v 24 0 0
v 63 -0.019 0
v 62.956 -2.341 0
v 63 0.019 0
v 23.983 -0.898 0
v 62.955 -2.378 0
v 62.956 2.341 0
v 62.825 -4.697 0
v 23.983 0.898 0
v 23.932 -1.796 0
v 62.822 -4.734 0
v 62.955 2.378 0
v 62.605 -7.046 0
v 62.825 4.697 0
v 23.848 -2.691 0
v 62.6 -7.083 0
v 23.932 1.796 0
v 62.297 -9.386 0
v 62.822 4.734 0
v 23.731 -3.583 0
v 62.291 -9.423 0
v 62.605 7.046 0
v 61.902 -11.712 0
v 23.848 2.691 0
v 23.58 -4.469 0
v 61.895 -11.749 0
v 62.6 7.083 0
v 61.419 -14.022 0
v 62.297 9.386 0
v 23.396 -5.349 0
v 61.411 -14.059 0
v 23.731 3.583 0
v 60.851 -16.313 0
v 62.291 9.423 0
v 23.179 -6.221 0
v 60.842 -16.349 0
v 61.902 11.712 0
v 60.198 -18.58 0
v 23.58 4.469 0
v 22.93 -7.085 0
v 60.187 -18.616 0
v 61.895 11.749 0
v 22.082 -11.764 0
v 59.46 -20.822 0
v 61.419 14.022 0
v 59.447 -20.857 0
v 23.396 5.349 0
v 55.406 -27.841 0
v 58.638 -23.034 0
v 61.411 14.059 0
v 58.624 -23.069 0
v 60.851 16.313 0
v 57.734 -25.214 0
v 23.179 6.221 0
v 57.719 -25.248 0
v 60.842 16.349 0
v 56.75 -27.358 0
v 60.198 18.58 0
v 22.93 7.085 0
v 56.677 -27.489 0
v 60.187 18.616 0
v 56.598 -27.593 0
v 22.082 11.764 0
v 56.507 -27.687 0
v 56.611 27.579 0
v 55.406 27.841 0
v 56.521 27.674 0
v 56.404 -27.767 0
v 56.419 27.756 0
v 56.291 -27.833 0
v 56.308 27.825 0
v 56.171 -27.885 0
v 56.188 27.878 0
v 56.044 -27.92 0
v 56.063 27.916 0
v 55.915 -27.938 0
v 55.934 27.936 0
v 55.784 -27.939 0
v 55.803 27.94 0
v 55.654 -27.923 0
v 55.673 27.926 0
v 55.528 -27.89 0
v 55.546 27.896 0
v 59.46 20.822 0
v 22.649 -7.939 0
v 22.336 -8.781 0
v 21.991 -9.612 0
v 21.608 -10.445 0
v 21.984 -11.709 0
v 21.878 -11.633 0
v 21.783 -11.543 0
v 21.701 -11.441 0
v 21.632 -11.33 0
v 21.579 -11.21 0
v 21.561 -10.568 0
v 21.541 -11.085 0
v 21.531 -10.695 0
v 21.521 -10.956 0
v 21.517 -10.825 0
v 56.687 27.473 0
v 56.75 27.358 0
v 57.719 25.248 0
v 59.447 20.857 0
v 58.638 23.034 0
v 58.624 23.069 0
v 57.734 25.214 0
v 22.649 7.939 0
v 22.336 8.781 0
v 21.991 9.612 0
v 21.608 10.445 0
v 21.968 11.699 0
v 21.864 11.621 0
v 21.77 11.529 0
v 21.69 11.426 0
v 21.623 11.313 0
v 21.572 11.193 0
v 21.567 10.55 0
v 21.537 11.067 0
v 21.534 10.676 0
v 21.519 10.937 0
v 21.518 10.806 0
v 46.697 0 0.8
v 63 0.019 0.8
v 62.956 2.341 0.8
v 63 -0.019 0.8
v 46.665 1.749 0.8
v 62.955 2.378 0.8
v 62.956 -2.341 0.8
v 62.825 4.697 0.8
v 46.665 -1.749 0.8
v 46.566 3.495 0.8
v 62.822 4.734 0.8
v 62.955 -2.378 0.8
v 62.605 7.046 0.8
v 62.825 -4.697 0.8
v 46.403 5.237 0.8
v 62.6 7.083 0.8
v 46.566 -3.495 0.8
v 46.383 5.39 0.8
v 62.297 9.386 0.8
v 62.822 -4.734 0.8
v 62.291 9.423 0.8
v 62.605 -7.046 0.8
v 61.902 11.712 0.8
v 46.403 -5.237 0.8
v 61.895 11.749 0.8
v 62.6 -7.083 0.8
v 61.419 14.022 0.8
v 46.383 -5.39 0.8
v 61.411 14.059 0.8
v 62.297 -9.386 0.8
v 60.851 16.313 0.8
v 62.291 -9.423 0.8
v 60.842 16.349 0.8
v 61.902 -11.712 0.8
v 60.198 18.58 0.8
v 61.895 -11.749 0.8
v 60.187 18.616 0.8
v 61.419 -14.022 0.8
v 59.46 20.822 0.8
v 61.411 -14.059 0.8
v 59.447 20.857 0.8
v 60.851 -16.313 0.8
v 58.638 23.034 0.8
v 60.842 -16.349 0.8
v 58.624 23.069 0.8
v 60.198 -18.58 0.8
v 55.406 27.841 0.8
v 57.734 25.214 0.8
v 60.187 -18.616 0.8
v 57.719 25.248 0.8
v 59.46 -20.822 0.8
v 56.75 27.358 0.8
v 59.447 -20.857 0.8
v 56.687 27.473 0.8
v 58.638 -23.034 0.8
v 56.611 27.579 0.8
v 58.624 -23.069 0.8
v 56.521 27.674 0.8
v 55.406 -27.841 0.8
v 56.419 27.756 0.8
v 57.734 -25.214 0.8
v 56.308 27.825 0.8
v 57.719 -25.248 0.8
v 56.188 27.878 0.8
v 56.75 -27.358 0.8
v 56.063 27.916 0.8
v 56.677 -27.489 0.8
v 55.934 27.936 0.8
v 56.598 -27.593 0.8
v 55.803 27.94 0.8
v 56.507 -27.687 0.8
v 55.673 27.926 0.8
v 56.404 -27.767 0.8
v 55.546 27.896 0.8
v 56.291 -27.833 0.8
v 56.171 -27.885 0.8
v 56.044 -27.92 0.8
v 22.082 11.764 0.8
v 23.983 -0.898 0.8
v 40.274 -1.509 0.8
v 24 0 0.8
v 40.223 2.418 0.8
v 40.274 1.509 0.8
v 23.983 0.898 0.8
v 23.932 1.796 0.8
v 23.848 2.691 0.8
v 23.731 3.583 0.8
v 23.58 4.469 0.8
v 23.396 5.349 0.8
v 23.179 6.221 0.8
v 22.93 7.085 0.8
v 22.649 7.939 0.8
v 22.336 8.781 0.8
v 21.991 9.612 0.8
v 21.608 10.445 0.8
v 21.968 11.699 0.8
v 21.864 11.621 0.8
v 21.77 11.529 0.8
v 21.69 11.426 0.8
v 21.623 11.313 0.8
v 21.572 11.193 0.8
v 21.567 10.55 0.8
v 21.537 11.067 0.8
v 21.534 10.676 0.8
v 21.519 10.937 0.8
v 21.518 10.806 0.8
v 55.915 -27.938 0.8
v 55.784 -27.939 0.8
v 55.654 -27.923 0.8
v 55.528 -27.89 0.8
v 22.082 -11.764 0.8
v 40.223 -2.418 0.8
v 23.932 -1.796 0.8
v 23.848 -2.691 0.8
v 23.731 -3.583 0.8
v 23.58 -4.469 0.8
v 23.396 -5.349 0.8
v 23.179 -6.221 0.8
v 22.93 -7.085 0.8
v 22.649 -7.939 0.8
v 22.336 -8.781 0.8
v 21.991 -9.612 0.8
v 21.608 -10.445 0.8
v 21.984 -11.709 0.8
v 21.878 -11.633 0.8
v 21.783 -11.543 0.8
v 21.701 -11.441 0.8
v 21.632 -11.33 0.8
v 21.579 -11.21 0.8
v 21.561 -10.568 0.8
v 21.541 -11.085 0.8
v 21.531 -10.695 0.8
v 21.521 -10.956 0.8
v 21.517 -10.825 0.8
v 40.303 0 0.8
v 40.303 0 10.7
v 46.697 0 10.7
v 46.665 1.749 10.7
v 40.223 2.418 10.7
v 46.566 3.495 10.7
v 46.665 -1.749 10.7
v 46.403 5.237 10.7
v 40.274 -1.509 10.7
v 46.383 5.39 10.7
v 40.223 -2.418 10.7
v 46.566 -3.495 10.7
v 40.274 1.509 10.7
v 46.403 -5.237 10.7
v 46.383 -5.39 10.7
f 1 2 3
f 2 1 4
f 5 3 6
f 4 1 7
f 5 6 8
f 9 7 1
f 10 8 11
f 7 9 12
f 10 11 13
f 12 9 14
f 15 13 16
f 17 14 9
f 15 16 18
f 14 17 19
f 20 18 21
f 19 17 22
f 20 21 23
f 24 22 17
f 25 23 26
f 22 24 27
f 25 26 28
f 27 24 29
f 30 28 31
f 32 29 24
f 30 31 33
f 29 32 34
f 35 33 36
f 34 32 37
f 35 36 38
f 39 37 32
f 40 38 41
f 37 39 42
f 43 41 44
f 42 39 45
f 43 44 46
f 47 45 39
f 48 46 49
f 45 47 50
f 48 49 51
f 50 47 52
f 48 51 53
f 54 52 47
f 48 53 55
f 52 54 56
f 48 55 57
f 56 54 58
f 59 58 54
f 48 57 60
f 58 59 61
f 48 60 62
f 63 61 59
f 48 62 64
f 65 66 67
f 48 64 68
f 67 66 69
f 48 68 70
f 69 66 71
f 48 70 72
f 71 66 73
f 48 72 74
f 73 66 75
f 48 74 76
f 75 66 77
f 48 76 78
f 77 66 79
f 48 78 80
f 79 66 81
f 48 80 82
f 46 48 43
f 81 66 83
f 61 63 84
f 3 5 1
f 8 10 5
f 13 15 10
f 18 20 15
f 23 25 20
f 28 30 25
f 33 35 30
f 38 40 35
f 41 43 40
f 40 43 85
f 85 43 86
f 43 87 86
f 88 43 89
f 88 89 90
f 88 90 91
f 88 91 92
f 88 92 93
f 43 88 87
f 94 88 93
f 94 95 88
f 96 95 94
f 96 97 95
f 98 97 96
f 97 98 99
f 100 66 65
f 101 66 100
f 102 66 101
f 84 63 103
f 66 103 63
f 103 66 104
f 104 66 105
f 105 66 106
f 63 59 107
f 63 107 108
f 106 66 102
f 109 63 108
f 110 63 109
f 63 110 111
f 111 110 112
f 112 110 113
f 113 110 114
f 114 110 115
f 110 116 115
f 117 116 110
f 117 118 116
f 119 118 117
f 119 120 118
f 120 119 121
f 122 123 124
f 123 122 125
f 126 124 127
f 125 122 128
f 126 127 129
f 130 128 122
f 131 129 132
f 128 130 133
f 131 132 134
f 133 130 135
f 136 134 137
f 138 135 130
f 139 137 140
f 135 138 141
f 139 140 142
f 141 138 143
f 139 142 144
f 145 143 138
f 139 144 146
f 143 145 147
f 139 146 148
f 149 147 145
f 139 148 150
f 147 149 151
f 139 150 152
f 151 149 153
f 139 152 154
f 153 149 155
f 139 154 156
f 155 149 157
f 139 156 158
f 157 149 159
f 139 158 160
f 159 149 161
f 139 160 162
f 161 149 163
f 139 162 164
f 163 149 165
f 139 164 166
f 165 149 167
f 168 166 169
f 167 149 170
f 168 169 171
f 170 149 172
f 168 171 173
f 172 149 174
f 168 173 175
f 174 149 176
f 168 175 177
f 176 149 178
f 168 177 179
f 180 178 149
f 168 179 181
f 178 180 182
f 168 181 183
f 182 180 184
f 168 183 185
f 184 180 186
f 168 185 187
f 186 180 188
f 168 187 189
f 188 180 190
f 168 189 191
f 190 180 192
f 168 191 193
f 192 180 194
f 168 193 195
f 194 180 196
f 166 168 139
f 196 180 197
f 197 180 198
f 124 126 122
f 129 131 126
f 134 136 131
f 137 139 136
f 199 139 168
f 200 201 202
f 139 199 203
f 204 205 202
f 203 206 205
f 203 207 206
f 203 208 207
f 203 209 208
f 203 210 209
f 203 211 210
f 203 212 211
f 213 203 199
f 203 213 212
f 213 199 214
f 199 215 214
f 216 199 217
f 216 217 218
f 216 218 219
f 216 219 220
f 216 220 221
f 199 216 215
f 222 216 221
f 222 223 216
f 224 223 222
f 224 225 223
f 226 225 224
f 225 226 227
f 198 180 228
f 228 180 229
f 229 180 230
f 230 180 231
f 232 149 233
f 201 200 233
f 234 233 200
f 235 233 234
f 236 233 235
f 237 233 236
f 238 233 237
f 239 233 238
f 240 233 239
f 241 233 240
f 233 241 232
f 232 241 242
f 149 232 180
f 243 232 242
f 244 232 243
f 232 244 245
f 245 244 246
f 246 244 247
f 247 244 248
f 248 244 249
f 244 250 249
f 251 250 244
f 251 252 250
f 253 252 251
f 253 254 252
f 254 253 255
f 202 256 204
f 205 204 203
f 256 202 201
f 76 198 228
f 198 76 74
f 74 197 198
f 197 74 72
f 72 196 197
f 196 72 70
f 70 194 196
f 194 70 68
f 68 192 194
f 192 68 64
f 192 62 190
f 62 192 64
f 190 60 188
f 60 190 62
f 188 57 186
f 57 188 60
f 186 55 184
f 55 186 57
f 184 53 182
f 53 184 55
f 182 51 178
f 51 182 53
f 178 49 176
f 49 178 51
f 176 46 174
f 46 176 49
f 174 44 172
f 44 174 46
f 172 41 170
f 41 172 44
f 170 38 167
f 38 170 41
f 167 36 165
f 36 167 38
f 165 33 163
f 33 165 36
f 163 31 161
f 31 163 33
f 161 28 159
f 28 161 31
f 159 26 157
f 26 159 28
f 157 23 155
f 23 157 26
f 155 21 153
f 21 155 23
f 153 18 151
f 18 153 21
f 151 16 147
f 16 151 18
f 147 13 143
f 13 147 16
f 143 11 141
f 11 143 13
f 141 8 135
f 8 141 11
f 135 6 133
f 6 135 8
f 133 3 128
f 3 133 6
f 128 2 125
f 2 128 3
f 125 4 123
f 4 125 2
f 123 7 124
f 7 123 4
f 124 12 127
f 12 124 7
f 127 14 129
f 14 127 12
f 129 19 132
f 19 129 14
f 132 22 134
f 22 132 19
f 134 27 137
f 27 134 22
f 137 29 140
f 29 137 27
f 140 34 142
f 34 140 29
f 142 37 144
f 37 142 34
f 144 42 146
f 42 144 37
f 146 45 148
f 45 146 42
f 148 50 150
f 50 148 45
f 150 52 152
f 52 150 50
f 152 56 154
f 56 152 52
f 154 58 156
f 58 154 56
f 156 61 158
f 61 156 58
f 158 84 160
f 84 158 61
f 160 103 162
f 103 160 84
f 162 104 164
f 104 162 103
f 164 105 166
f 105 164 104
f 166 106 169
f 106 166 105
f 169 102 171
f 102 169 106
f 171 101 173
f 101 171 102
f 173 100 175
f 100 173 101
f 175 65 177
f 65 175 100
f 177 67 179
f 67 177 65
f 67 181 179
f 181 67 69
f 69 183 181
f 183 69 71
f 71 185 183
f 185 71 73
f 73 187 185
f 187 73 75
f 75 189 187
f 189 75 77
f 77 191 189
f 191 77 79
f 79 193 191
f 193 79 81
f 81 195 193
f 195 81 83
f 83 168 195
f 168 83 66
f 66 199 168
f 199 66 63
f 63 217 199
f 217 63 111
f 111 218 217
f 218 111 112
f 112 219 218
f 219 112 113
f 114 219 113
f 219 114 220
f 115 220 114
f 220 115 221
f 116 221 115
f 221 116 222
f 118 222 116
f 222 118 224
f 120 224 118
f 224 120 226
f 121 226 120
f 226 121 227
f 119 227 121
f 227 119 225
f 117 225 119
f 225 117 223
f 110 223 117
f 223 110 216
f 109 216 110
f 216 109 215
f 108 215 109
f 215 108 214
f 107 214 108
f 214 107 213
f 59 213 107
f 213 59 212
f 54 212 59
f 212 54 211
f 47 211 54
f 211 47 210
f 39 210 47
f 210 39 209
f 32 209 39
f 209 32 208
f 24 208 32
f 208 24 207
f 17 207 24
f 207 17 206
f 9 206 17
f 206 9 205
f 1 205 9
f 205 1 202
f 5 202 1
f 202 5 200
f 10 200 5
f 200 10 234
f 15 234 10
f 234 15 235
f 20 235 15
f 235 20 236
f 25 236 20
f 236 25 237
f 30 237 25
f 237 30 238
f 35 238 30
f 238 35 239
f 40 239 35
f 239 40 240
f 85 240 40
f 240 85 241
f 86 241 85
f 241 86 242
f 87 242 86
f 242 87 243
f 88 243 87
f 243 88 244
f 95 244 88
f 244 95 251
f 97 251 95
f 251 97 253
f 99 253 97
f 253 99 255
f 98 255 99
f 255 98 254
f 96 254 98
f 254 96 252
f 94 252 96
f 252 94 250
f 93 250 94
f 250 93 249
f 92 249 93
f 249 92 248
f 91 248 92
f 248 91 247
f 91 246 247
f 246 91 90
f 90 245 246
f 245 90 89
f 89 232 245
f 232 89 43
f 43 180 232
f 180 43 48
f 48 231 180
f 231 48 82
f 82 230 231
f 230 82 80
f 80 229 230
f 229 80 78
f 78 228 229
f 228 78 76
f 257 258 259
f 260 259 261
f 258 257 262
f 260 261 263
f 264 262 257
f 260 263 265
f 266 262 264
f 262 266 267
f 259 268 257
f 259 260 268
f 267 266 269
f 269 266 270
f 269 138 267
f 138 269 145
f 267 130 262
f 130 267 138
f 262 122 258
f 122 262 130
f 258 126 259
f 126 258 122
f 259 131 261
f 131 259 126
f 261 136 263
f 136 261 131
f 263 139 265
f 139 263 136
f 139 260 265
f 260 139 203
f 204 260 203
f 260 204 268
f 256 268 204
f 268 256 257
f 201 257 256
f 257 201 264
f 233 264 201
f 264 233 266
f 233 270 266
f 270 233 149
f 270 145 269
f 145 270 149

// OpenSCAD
// file: parameters.scad
// =============================================================================
// Gen-BF — nightly 2026-10-04 (physics_scorer, honest magpylib watts)
// 8-pole / 6-coil dual rotor with big 51.5 deg sector coils and TALL 9.9 mm copper, magnets seated directly on 3 mm steel back-iron discs (through-pockets) so the field stays high across a wide gap.
// Clocking 0 deg (magnets N facing S) + D-flat keyed bore + index notch + flip-symmetric hole map.
// Windable 2-piece bobbin; turns = physics_scorer turns_fit; copper only between flanges.
// Steel back-iron: two 3.0 mm mild-steel discs (steel_backiron_disc.dxf); magnets sit ON the steel
// (through-pockets) -> score with --back-iron.
// =============================================================================
topology            = "dual_rotor";

// --- Wire / winding (physics_scorer winding-fit) -------------------------------
wire_awg            = 26;
wire_od             = 0.45;     // insulated OD mm (bare 0.405)
fill_realistic      = 0.60;     // insulated-wire area / window, hand-wound layered
turns               = 571;       // = physics_scorer turns_fit (do NOT raise)
coil_former_type    = "bobbin";
coil_core_inset     = 15.30;     // radial copper build: hub = copper boundary inset by this
wind_build_axial    = 0.0;      // nothing proud of the flanges
wind_build_radial   = 0.0;

// --- Bobbin (base + lid) ---------------------------------------------------------
coil_id_r           = 25.00;    // copper boundary sector
coil_od_r           = 62.00;
span_deg            = 51.51;    // = pitch - 2*asin((wall+0.85)/coil_id_r) -> >=1.2 mm stator web
former_web          = 9.90;     // copper height between flanges (TALL copper: steel keeps Bz up)
flange_t            = 0.80;     // >= 0.8 mm FDM wall rule (tall winds push on the flanges)
wall                = 1.00;     // flange lip beyond copper
former_bare_h       = former_web + 2 * flange_t;
coil_envelope_h     = former_bare_h + 2 * wind_build_axial;
tab_w               = 7.0;
tab_len             = 7.0;
tab_h               = former_bare_h / 2;
pin_d               = 1.9;      // 1.75 mm filament locating pin
coil_mount_r        = coil_od_r + 0.2 + 4.0;
lead_y              = 1.6;
lead_slot_w         = 0.9;
lead_groove_d       = 0.6;

// --- Gap -------------------------------------------------------------------------
run_clear           = 0.50;     // rotor face -> flange
gap_spacer_h        = run_clear + wind_build_axial;
m2m                 = coil_envelope_h + 2 * run_clear;   // rotor face to rotor face (= gap_sleeve length)

// --- Stator ----------------------------------------------------------------------
coil_stations       = 6;
bay_clear           = 0.25;
stator_thick        = former_bare_h;                        // bobbins flush both faces
stator_od           = 149.0;
shaft_clear_stator  = 14.0;     // stator is static; gap sleeve OD 12 spins inside

// --- Rotor(s) --------------------------------------------------------------------
magnet_Br           = 1.43;     // N52
magnet_d_large      = 20.0;
magnet_h_large      = 5.0;      // one O20x5 per pocket
magnet_h_small      = 5.0;      // one O5x5 per pocket
halbach_magnetisation = "diametric"; // O5x5 assist magnets MUST be DIAMETRICALLY magnetised (tangential)
rotor_b_same_axis   = true;     // same-index magnets share one axis: N faces S across the gap
large_pocket_d      = 20.3;
small_pocket_d      = 5.3;
pocket_h            = 5.10;     // THROUGH the carrier: magnet back face sits on the steel disc
large_n             = 8;
R_large             = 44.0;
R_small_inner       = 30.0;
R_small_mid         = 44.0;
R_small_outer       = 59.0;
small_r_list        = [R_small_inner, R_small_mid, R_small_outer];   // O5 pockets between poles
carrier_od          = 127.0;
carrier_thick       = pocket_h;
hub_h               = 10.0;
hub_od              = 24.0;     // slim hub so the M4 brace rods fit at R~18 inside the coil ring
hub_insert_d        = 4.0;      // M3 heat-set insert, radial, bears on the D-flat
rotor_b_offset_deg  = 0.0;      // CLOCKING: magnets directly opposite
shaft_key           = "dflat";
dflat_depth         = 0.5;      // 8 mm shaft with 0.5 mm flat (7.5 across flat)
index_notch_d       = 3.0;

// --- Steel back-iron (buyable laser-cut) -------------------------------------------
steel_t             = 3.0;      // mild steel thickness (not modelled by the image method; >=3 avoids saturation)
steel_center_hole   = 26.0;     // slips over the rotor hub (OD 24)

// --- Modular MAX interface ----------------------------------------------------------
shaft_bore          = 8.35;
dflat_x             = 4.0 - dflat_depth + (shaft_bore - 8.0) / 2;
bearing_d           = 21.85;
bearing_h           = 7.2;
m3_clear            = 3.5;
bolt_r_inner        = 27.0;     // M3 steel-disc clamp bolts (inside the magnet ring)
bolt_n_inner        = 4;
bolt_inner_angles   = [0, 90, 180, 270];
bolt_r_outer        = 57.0;     // M3 steel-disc clamp bolts (outside the magnet ring)
bolt_outer_angles   = [0, 90, 180, 270];
flange_bolt_r       = 69.5;     // frame rods: OUTSIDE the rotor OD (rotors spin inside them)
flange_bolt_n       = 6;
flange_bolt_offset  = 30.00;    // between coil stations -> never cuts a lead groove/tab
brace_r             = 18.0;
brace_d             = 4.3;      // temporary M4 jack rods (assembly only)
brace_n             = 4;
brace_angles        = [45, 135, 225, 315];          // flip-symmetric

spacer_pad_od       = 14.0;
spacer_pad_id       = m3_clear;
endbell_od          = 149.0;
endbell_thick       = 8.0;
endbell_shaft_clear = 10.0;
collar_h            = 10.0;
standoff_od         = 9.0;
frame_standoff_h    = run_clear + carrier_thick + hub_h + collar_h + 2.0;
sleeve_od           = 12.0;
plate_max_mm        = 410;

$fn = 64;
// main file
// Gen-BF — bobbin BASE (bottom flange + hub). Print x6, flange down. Wind 26 AWG x 571 t around
// the hub with the LID glued on (coil_lid.stl). Copper lives ONLY between the flanges (no proud winds).
include <parameters.scad>;
$fn = 48;
module sector_2d(r_in, r_out, ang) {
    polygon([
        for (a = [-ang/2 : ang/24 : ang/2]) [r_in*cos(a), r_in*sin(a)],
        for (a = [ang/2 : -ang/24 : -ang/2]) [r_out*cos(a), r_out*sin(a)]
    ]);
}
module footprint_2d() { offset(r=wall) sector_2d(coil_id_r, coil_od_r, span_deg); }
module hub_2d()       { offset(delta=-coil_core_inset) sector_2d(coil_id_r, coil_od_r, span_deg); }

union() {
    linear_extrude(flange_t) footprint_2d();
    translate([0, 0, flange_t - 0.01]) linear_extrude(former_web + 0.01) hub_2d();
}
